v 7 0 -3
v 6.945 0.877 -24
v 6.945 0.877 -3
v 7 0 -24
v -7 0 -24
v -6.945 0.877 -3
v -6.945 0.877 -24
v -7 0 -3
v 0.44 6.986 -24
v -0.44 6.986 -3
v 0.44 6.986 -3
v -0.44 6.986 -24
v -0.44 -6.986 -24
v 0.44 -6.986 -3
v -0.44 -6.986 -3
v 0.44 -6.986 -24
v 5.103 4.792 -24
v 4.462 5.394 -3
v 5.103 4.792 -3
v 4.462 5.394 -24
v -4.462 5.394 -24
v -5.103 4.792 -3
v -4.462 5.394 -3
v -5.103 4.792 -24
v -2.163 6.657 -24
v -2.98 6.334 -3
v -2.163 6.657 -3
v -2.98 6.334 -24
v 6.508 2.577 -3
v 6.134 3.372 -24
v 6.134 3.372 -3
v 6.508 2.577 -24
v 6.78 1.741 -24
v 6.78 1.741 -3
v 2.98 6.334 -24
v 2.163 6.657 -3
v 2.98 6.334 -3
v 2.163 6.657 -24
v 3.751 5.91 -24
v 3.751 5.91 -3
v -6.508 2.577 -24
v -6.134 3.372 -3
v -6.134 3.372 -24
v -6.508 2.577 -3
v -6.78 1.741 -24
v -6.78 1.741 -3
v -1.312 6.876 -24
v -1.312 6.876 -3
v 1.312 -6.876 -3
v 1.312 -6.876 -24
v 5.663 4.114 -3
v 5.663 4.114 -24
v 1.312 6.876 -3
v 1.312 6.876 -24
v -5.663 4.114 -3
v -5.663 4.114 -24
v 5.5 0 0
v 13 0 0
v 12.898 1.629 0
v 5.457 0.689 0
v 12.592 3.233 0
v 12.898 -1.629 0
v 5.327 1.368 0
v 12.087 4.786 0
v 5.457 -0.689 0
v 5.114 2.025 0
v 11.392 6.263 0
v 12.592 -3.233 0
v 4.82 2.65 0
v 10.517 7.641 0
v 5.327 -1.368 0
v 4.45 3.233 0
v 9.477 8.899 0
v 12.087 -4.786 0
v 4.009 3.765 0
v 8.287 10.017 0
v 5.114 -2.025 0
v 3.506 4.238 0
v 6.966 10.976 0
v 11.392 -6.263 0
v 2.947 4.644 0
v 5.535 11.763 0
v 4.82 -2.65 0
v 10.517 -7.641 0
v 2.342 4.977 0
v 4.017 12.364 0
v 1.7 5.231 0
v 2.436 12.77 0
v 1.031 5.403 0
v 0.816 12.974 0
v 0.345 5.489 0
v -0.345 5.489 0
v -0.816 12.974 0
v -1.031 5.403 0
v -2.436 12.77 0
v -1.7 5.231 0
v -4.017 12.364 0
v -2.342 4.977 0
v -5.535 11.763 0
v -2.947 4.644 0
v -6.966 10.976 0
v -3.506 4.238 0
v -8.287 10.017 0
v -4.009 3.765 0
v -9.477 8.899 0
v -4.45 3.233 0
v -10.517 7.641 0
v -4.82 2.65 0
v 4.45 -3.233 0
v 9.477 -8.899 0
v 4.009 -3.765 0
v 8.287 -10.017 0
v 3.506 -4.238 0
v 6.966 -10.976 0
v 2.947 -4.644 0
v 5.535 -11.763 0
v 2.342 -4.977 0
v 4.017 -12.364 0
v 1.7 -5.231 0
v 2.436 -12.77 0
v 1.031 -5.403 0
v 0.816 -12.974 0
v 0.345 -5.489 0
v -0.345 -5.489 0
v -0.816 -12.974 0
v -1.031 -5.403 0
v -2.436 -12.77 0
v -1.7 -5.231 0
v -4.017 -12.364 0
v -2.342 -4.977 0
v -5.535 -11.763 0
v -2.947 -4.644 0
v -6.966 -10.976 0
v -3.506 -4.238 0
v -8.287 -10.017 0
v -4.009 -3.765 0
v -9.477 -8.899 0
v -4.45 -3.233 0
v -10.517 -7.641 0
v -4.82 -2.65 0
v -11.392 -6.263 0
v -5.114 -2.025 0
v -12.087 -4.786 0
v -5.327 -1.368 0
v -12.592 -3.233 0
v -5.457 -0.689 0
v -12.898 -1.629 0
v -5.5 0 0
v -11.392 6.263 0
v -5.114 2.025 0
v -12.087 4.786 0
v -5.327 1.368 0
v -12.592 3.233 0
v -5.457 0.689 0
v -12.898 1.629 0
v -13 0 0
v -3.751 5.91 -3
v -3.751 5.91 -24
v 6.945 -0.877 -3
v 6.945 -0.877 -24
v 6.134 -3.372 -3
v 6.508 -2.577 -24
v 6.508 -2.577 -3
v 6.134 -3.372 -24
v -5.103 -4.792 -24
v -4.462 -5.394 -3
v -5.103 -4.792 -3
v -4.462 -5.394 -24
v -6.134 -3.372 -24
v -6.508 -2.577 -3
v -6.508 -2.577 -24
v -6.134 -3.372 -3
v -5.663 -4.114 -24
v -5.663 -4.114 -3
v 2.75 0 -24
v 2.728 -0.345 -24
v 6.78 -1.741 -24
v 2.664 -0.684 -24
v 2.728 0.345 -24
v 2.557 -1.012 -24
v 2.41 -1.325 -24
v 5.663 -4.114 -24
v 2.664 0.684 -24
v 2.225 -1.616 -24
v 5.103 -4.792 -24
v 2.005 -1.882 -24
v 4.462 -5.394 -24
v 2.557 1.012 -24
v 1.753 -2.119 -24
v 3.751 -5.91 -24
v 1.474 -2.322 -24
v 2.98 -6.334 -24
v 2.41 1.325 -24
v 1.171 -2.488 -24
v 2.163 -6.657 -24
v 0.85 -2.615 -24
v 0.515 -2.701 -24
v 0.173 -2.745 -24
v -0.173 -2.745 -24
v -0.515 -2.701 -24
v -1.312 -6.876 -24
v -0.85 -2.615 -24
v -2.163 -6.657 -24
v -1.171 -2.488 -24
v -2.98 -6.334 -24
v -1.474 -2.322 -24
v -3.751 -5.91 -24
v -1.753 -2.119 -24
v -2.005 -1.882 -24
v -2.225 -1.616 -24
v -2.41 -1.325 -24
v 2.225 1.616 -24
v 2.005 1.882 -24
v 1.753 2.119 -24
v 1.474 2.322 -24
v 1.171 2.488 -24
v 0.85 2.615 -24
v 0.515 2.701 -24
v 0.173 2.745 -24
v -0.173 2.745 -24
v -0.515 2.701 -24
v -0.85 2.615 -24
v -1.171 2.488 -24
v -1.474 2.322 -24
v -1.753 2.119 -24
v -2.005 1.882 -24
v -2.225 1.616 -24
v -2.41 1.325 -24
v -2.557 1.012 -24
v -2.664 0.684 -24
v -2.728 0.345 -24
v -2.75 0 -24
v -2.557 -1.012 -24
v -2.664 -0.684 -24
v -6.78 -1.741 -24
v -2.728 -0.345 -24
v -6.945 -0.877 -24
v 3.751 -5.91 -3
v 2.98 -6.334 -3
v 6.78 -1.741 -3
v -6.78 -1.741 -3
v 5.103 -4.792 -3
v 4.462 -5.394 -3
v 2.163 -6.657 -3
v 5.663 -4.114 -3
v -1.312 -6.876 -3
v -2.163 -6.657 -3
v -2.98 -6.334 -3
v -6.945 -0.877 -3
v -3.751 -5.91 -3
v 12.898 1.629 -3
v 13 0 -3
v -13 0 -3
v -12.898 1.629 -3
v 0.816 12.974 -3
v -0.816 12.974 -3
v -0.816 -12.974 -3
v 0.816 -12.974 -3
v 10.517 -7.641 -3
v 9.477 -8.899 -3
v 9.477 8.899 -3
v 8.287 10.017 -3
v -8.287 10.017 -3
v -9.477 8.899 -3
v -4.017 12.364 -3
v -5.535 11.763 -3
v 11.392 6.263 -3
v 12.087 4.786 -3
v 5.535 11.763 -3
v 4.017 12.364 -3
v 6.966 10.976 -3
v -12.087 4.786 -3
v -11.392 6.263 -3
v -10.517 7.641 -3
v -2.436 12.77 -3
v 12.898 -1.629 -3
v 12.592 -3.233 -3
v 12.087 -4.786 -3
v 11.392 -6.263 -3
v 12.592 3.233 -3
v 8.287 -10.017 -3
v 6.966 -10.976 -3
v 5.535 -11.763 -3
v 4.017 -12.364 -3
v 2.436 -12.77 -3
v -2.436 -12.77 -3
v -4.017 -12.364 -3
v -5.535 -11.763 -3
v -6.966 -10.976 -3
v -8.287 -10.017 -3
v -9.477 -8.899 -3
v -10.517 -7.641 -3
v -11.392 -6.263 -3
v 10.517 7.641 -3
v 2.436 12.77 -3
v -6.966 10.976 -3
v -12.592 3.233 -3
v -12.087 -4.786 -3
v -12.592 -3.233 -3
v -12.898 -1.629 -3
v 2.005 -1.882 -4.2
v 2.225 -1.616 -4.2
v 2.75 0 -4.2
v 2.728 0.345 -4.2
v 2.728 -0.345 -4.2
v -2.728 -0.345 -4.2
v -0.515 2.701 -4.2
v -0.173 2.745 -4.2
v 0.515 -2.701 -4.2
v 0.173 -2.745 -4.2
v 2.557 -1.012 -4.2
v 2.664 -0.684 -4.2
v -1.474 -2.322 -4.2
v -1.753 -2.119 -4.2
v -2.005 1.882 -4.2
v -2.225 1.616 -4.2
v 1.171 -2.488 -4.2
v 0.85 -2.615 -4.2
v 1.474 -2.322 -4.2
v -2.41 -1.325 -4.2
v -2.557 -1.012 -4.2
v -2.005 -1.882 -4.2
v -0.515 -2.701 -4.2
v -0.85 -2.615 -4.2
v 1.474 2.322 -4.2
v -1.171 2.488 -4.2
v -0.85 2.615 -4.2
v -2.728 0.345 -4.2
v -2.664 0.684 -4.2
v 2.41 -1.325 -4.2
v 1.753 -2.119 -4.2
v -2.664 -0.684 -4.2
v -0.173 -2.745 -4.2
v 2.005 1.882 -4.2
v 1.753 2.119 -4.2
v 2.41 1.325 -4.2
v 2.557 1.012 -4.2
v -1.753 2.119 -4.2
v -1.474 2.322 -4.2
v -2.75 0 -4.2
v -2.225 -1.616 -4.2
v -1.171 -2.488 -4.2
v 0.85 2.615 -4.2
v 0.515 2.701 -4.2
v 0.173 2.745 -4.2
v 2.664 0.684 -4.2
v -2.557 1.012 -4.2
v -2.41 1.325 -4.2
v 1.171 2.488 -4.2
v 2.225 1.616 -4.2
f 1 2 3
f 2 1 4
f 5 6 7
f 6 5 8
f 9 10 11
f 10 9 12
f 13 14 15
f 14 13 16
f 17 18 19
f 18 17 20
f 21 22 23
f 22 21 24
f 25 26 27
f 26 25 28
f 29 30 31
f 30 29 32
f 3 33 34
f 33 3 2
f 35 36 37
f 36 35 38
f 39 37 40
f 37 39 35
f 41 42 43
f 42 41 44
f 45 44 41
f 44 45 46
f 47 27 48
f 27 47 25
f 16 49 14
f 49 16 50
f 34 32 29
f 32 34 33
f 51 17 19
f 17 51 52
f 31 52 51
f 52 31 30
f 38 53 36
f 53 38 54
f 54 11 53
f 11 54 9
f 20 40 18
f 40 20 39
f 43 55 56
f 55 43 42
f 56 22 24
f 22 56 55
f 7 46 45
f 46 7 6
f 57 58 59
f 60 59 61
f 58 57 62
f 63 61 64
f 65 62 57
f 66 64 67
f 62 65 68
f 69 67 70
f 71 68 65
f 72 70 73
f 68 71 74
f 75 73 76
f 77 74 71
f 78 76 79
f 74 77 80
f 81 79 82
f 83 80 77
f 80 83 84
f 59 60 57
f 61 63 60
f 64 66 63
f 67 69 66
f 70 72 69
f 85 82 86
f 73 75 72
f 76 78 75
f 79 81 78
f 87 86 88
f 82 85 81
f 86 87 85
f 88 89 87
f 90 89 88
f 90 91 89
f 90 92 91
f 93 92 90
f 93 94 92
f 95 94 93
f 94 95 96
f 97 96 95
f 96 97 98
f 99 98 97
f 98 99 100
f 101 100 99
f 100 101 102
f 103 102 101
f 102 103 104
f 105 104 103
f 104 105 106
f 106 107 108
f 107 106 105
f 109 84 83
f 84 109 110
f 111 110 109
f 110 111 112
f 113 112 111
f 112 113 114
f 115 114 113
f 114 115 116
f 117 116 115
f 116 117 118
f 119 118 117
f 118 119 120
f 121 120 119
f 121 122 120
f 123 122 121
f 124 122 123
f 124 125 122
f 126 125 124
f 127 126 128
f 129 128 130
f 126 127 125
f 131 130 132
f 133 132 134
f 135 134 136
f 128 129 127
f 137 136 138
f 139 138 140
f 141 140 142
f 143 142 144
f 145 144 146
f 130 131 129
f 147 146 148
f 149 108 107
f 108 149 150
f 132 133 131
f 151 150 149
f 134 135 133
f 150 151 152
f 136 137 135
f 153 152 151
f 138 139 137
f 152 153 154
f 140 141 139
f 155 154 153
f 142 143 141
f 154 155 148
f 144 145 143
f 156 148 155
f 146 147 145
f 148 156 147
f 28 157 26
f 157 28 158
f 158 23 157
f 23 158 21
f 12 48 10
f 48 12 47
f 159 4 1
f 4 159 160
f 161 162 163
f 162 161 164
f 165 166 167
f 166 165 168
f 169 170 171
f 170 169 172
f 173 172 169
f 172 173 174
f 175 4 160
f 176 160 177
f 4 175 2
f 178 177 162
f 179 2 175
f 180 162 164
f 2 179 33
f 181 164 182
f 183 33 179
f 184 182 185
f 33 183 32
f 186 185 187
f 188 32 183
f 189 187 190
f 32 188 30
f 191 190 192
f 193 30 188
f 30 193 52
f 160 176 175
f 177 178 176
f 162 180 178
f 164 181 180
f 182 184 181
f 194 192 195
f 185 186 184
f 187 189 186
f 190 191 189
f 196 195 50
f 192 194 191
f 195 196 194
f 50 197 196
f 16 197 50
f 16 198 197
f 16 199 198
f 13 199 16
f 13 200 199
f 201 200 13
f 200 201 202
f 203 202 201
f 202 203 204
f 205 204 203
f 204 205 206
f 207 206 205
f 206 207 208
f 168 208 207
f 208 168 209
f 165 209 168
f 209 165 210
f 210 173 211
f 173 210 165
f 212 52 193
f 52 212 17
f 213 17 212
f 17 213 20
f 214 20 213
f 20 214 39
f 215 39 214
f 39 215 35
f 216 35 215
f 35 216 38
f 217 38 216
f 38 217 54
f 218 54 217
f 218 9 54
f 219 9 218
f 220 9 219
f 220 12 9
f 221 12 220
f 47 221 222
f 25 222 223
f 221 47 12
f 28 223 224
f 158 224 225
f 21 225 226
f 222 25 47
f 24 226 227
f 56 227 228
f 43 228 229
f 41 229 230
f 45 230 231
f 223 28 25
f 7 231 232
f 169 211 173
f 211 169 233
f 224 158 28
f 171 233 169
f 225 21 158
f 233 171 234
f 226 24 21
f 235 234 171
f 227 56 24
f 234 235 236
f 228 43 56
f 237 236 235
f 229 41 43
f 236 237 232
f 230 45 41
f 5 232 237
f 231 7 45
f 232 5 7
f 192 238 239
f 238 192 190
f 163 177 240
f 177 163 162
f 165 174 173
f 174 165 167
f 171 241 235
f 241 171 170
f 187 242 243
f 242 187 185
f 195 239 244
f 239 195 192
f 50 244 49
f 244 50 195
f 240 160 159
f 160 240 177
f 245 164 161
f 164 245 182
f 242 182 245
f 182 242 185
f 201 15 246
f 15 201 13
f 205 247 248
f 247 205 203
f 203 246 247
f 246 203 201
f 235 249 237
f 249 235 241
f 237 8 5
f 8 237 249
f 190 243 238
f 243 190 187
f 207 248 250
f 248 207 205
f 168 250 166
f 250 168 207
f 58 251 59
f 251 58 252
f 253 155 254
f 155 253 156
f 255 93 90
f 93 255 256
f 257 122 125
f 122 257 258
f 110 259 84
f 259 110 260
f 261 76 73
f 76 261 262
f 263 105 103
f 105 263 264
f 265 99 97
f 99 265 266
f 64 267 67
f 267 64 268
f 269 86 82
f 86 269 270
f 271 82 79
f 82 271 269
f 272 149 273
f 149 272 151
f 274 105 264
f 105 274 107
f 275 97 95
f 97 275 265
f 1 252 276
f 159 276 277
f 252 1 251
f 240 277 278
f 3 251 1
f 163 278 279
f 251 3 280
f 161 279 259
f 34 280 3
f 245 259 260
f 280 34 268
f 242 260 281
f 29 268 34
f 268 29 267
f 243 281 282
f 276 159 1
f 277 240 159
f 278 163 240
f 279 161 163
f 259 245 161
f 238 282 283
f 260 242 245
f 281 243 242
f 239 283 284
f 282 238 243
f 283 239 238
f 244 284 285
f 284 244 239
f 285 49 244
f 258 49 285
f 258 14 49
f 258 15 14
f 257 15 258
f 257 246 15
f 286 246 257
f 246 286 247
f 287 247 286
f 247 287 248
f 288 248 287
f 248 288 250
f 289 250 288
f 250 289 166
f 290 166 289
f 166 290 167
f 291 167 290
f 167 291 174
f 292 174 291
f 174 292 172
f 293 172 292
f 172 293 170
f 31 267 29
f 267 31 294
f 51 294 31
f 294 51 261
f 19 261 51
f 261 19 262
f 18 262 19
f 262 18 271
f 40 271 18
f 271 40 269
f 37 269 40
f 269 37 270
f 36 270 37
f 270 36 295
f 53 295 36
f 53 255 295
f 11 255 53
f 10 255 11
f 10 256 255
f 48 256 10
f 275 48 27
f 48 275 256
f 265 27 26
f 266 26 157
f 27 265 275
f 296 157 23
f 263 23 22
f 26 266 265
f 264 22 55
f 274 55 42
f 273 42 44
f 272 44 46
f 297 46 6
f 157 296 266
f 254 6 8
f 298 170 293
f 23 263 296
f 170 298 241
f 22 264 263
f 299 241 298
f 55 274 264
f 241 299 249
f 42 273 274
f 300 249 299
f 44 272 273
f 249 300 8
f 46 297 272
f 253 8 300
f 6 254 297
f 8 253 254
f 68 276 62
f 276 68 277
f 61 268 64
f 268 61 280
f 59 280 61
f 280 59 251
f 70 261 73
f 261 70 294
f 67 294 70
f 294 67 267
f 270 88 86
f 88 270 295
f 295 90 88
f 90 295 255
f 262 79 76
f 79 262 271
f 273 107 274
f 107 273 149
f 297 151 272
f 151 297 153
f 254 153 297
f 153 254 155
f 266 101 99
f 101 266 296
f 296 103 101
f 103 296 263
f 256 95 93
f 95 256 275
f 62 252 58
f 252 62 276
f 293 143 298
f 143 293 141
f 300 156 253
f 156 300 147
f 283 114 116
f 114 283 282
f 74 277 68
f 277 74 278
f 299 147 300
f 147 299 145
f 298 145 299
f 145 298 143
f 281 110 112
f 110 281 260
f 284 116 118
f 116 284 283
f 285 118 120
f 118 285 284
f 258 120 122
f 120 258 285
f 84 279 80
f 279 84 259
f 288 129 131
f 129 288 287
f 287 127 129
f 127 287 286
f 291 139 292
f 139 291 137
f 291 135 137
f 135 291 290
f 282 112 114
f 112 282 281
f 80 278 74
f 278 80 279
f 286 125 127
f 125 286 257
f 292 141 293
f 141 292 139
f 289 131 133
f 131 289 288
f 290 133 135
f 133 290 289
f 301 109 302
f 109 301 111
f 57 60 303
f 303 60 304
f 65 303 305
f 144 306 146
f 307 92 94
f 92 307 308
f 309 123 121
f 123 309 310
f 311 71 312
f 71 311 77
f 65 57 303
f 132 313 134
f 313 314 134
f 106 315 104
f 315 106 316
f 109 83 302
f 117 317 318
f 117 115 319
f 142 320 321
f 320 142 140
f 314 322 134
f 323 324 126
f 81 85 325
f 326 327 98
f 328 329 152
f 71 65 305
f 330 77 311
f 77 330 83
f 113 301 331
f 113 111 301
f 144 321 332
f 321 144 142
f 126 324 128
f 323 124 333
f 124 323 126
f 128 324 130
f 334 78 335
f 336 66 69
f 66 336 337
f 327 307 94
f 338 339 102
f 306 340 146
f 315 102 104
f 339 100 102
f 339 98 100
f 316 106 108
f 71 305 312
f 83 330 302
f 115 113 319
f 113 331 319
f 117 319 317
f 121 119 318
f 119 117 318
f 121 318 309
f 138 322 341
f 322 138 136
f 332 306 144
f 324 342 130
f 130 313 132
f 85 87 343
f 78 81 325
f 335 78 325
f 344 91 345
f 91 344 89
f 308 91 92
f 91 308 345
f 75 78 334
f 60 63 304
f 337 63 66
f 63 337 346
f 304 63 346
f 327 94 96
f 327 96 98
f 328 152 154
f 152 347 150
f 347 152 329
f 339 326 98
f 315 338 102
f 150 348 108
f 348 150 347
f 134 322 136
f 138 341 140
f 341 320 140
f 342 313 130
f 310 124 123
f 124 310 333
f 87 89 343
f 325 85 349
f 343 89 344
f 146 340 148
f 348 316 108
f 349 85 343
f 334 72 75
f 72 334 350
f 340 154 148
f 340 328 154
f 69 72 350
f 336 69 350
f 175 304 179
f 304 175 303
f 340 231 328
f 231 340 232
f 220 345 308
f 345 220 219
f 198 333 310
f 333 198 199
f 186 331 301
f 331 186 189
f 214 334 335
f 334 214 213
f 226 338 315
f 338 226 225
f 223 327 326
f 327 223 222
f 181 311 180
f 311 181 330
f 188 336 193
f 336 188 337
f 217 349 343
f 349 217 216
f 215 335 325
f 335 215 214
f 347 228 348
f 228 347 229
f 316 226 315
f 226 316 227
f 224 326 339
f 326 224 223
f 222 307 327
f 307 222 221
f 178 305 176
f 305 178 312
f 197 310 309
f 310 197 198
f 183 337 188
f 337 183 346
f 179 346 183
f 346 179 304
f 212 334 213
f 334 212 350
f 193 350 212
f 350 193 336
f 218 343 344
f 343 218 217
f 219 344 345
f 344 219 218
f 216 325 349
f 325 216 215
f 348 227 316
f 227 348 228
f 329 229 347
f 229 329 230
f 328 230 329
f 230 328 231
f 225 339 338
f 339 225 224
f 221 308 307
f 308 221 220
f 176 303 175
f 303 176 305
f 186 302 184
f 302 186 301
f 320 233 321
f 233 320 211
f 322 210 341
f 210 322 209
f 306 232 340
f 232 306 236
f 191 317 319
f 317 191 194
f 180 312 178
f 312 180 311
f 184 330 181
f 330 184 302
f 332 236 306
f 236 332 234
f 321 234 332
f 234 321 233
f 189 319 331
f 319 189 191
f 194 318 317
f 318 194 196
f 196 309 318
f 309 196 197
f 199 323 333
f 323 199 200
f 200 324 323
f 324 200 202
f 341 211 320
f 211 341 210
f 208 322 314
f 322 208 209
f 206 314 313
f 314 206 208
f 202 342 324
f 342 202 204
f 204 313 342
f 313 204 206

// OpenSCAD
$fn = 50;


difference() {
	union() {
		translate(v = [0, 0, -24.0000000000]) {
			cylinder(h = 24, r = 7.0000000000);
		}
		translate(v = [0, 0, -3.0000000000]) {
			cylinder(h = 3, r = 13.0000000000);
		}
	}
	union() {
		translate(v = [0, 0, 0]) {
			rotate(a = [0, 0, 0]) {
				difference() {
					union() {
						#translate(v = [0, 0, -24.0000000000]) {
							cylinder(h = 24, r = 2.2500000000);
						}
						#translate(v = [0, 0, -4.2000000000]) {
							cylinder(h = 4.2000000000, r1 = 2.7500000000, r2 = 5.5000000000);
						}
						#translate(v = [0, 0, -24.0000000000]) {
							cylinder(h = 24, r = 2.7500000000);
						}
						#translate(v = [0, 0, -24.0000000000]) {
							cylinder(h = 24, r = 2.2500000000);
						}
					}
					union();
				}
			}
		}
	}
}
